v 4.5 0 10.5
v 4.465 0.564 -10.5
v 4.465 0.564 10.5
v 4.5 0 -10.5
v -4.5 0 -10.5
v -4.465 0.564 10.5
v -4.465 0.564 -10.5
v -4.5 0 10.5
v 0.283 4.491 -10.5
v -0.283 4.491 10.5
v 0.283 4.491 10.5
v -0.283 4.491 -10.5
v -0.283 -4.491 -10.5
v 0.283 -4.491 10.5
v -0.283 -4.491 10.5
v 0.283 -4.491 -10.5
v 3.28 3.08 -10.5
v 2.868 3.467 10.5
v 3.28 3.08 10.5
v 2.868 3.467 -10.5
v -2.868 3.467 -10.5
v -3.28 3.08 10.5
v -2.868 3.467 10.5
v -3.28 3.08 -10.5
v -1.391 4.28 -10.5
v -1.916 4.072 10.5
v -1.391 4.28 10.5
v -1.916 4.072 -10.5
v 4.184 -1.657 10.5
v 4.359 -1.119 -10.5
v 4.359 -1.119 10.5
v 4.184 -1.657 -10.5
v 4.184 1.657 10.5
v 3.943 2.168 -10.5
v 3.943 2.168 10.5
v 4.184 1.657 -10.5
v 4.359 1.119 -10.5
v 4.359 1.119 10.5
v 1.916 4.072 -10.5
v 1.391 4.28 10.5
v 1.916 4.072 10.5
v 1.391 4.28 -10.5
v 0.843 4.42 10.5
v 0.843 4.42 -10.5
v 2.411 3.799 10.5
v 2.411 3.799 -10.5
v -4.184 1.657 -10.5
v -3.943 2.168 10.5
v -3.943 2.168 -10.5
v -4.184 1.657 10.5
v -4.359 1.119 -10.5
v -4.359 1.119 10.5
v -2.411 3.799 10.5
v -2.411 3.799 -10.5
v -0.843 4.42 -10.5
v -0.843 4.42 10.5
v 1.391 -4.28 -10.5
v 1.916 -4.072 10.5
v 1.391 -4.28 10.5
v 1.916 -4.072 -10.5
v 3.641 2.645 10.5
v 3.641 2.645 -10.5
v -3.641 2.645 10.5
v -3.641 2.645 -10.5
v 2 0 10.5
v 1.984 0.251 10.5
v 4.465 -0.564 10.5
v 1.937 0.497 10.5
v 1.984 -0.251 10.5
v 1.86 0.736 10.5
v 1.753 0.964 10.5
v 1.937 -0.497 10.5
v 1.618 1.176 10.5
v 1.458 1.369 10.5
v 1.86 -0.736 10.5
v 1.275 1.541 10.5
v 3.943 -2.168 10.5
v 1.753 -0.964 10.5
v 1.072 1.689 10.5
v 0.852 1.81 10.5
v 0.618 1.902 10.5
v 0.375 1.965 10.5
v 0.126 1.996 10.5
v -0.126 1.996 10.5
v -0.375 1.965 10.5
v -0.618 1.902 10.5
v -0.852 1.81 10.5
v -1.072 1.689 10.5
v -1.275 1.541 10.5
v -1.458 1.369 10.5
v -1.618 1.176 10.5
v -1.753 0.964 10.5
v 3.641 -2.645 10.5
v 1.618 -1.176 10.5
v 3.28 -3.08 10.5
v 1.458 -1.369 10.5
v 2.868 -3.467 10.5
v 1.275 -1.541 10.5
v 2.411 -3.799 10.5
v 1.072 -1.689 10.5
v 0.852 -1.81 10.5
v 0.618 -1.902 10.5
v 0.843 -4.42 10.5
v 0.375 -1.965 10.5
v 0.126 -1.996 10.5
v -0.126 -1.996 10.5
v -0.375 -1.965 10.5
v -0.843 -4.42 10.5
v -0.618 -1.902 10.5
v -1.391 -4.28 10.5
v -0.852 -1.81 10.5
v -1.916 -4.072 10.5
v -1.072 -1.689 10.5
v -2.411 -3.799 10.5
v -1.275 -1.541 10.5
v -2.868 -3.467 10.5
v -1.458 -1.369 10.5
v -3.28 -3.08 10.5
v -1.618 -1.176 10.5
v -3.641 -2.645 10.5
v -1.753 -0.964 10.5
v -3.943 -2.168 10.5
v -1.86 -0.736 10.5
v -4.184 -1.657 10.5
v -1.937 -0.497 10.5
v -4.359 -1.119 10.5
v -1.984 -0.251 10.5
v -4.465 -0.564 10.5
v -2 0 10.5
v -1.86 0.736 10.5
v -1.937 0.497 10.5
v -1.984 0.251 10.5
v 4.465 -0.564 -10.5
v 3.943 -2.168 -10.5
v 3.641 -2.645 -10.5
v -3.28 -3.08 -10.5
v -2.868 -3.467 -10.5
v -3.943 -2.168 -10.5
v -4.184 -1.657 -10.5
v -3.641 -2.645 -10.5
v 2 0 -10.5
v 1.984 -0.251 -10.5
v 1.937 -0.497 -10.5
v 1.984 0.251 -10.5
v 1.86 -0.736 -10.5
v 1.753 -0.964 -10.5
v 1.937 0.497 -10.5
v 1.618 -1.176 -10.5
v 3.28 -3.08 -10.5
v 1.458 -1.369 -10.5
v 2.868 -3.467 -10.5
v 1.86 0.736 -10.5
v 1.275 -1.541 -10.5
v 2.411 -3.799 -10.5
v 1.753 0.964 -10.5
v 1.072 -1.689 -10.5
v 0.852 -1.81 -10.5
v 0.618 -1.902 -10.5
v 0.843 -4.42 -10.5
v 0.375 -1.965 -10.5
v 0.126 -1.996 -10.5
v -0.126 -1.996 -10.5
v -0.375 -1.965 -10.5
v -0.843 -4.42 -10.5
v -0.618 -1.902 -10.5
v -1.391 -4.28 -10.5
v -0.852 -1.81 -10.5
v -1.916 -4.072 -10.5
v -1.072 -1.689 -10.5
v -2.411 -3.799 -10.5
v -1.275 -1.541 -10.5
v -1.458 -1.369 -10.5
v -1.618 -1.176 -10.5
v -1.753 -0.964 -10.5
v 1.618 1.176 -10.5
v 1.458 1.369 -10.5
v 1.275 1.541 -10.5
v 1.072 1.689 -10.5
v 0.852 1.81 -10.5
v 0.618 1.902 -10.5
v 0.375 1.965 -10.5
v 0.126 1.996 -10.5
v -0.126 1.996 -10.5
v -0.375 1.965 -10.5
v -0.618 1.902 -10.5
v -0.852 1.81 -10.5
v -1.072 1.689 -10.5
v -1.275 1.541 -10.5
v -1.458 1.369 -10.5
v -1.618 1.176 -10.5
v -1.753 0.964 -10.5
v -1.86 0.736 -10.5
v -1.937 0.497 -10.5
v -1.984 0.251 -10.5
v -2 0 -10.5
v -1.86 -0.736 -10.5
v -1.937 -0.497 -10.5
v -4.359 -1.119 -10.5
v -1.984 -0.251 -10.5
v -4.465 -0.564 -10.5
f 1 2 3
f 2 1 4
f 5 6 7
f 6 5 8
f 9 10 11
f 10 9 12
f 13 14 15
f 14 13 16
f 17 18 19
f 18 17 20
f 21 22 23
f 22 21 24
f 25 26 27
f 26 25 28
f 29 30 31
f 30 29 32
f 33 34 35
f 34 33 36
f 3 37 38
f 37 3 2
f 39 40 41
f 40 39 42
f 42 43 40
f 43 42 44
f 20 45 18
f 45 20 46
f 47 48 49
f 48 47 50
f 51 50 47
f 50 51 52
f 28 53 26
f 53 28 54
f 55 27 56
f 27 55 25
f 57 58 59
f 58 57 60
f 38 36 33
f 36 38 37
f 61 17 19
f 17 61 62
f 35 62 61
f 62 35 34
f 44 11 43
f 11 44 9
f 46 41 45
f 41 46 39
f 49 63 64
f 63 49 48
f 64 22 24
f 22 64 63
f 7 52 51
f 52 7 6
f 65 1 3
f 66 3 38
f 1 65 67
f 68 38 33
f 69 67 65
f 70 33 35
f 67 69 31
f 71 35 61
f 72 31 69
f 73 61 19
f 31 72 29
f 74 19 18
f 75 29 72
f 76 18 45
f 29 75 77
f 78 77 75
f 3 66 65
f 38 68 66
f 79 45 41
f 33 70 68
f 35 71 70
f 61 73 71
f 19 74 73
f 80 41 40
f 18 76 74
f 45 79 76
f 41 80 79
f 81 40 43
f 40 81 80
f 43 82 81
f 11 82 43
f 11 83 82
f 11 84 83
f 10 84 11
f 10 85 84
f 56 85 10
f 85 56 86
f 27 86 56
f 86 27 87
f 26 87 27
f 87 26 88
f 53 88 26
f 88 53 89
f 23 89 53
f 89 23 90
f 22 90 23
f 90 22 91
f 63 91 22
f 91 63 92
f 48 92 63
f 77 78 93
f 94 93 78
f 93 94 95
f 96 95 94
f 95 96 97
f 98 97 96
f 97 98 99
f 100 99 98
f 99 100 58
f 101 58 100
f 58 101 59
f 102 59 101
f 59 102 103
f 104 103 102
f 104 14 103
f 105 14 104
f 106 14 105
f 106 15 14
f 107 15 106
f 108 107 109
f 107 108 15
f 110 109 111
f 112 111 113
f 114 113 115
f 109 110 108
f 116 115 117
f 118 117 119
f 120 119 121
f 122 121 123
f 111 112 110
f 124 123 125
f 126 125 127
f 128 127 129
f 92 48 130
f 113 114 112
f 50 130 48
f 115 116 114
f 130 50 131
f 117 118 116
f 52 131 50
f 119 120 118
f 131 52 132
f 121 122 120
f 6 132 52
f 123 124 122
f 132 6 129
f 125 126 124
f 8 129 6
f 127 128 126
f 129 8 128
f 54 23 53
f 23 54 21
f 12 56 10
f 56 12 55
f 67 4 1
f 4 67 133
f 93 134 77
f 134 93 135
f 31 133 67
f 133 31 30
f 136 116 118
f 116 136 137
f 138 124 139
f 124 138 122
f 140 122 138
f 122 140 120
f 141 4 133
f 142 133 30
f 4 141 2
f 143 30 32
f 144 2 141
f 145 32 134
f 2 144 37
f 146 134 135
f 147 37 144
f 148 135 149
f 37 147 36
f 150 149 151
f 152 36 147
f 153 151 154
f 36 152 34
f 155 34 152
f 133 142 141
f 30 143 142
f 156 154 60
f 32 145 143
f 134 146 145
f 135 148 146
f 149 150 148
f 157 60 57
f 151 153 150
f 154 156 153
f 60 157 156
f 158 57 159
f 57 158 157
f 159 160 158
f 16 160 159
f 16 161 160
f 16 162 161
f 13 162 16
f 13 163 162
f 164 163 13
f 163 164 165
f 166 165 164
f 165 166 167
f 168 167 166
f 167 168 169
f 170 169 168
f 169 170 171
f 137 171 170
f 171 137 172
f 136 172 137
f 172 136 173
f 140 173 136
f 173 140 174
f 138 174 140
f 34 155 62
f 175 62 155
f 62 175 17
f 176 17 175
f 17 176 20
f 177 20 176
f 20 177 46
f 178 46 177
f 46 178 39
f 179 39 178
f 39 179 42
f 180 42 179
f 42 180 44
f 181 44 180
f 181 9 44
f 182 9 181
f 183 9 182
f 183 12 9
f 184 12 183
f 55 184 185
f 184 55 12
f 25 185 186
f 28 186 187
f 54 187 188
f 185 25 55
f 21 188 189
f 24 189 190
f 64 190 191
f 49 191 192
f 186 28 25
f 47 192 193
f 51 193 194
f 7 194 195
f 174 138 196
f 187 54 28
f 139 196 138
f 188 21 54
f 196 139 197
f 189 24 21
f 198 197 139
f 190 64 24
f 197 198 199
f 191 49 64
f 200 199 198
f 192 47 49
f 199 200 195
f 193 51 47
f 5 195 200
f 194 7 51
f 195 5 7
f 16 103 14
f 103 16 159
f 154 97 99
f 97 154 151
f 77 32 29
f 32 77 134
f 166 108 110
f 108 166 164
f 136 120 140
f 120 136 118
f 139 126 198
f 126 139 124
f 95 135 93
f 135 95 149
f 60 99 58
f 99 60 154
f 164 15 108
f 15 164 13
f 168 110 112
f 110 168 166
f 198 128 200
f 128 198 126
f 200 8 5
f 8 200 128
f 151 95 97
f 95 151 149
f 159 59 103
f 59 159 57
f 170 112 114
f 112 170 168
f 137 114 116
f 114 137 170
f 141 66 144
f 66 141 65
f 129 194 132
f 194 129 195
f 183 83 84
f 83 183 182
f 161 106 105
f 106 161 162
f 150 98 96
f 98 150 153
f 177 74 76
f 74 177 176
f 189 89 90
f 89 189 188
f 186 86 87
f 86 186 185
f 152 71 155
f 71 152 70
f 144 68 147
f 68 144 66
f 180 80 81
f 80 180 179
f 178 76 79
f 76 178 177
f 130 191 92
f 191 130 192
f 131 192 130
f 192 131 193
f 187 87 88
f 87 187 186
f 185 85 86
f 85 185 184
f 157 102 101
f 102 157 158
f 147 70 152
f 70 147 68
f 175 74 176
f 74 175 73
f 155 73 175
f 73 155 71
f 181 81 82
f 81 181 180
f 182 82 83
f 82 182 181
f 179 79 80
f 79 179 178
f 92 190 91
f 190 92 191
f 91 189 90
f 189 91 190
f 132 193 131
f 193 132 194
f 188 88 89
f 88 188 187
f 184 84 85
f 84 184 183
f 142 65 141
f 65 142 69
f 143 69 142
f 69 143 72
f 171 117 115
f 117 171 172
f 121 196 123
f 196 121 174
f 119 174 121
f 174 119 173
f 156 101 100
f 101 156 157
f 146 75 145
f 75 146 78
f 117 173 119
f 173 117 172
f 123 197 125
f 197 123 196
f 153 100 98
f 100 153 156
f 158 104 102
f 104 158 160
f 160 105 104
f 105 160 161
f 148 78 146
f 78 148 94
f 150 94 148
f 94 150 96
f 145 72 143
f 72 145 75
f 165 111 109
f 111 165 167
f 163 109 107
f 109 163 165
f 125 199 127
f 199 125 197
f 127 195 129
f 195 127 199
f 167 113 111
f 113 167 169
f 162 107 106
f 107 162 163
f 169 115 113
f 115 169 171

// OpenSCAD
$fn = 50;


difference() {
	union() {
		translate(v = [0, 0, -10.5000000000]) {
			cylinder(h = 21, r = 4.5000000000);
		}
	}
	union() {
		translate(v = [0, 0, -100.0000000000]) {
			cylinder(h = 200, r = 2);
		}
	}
}
